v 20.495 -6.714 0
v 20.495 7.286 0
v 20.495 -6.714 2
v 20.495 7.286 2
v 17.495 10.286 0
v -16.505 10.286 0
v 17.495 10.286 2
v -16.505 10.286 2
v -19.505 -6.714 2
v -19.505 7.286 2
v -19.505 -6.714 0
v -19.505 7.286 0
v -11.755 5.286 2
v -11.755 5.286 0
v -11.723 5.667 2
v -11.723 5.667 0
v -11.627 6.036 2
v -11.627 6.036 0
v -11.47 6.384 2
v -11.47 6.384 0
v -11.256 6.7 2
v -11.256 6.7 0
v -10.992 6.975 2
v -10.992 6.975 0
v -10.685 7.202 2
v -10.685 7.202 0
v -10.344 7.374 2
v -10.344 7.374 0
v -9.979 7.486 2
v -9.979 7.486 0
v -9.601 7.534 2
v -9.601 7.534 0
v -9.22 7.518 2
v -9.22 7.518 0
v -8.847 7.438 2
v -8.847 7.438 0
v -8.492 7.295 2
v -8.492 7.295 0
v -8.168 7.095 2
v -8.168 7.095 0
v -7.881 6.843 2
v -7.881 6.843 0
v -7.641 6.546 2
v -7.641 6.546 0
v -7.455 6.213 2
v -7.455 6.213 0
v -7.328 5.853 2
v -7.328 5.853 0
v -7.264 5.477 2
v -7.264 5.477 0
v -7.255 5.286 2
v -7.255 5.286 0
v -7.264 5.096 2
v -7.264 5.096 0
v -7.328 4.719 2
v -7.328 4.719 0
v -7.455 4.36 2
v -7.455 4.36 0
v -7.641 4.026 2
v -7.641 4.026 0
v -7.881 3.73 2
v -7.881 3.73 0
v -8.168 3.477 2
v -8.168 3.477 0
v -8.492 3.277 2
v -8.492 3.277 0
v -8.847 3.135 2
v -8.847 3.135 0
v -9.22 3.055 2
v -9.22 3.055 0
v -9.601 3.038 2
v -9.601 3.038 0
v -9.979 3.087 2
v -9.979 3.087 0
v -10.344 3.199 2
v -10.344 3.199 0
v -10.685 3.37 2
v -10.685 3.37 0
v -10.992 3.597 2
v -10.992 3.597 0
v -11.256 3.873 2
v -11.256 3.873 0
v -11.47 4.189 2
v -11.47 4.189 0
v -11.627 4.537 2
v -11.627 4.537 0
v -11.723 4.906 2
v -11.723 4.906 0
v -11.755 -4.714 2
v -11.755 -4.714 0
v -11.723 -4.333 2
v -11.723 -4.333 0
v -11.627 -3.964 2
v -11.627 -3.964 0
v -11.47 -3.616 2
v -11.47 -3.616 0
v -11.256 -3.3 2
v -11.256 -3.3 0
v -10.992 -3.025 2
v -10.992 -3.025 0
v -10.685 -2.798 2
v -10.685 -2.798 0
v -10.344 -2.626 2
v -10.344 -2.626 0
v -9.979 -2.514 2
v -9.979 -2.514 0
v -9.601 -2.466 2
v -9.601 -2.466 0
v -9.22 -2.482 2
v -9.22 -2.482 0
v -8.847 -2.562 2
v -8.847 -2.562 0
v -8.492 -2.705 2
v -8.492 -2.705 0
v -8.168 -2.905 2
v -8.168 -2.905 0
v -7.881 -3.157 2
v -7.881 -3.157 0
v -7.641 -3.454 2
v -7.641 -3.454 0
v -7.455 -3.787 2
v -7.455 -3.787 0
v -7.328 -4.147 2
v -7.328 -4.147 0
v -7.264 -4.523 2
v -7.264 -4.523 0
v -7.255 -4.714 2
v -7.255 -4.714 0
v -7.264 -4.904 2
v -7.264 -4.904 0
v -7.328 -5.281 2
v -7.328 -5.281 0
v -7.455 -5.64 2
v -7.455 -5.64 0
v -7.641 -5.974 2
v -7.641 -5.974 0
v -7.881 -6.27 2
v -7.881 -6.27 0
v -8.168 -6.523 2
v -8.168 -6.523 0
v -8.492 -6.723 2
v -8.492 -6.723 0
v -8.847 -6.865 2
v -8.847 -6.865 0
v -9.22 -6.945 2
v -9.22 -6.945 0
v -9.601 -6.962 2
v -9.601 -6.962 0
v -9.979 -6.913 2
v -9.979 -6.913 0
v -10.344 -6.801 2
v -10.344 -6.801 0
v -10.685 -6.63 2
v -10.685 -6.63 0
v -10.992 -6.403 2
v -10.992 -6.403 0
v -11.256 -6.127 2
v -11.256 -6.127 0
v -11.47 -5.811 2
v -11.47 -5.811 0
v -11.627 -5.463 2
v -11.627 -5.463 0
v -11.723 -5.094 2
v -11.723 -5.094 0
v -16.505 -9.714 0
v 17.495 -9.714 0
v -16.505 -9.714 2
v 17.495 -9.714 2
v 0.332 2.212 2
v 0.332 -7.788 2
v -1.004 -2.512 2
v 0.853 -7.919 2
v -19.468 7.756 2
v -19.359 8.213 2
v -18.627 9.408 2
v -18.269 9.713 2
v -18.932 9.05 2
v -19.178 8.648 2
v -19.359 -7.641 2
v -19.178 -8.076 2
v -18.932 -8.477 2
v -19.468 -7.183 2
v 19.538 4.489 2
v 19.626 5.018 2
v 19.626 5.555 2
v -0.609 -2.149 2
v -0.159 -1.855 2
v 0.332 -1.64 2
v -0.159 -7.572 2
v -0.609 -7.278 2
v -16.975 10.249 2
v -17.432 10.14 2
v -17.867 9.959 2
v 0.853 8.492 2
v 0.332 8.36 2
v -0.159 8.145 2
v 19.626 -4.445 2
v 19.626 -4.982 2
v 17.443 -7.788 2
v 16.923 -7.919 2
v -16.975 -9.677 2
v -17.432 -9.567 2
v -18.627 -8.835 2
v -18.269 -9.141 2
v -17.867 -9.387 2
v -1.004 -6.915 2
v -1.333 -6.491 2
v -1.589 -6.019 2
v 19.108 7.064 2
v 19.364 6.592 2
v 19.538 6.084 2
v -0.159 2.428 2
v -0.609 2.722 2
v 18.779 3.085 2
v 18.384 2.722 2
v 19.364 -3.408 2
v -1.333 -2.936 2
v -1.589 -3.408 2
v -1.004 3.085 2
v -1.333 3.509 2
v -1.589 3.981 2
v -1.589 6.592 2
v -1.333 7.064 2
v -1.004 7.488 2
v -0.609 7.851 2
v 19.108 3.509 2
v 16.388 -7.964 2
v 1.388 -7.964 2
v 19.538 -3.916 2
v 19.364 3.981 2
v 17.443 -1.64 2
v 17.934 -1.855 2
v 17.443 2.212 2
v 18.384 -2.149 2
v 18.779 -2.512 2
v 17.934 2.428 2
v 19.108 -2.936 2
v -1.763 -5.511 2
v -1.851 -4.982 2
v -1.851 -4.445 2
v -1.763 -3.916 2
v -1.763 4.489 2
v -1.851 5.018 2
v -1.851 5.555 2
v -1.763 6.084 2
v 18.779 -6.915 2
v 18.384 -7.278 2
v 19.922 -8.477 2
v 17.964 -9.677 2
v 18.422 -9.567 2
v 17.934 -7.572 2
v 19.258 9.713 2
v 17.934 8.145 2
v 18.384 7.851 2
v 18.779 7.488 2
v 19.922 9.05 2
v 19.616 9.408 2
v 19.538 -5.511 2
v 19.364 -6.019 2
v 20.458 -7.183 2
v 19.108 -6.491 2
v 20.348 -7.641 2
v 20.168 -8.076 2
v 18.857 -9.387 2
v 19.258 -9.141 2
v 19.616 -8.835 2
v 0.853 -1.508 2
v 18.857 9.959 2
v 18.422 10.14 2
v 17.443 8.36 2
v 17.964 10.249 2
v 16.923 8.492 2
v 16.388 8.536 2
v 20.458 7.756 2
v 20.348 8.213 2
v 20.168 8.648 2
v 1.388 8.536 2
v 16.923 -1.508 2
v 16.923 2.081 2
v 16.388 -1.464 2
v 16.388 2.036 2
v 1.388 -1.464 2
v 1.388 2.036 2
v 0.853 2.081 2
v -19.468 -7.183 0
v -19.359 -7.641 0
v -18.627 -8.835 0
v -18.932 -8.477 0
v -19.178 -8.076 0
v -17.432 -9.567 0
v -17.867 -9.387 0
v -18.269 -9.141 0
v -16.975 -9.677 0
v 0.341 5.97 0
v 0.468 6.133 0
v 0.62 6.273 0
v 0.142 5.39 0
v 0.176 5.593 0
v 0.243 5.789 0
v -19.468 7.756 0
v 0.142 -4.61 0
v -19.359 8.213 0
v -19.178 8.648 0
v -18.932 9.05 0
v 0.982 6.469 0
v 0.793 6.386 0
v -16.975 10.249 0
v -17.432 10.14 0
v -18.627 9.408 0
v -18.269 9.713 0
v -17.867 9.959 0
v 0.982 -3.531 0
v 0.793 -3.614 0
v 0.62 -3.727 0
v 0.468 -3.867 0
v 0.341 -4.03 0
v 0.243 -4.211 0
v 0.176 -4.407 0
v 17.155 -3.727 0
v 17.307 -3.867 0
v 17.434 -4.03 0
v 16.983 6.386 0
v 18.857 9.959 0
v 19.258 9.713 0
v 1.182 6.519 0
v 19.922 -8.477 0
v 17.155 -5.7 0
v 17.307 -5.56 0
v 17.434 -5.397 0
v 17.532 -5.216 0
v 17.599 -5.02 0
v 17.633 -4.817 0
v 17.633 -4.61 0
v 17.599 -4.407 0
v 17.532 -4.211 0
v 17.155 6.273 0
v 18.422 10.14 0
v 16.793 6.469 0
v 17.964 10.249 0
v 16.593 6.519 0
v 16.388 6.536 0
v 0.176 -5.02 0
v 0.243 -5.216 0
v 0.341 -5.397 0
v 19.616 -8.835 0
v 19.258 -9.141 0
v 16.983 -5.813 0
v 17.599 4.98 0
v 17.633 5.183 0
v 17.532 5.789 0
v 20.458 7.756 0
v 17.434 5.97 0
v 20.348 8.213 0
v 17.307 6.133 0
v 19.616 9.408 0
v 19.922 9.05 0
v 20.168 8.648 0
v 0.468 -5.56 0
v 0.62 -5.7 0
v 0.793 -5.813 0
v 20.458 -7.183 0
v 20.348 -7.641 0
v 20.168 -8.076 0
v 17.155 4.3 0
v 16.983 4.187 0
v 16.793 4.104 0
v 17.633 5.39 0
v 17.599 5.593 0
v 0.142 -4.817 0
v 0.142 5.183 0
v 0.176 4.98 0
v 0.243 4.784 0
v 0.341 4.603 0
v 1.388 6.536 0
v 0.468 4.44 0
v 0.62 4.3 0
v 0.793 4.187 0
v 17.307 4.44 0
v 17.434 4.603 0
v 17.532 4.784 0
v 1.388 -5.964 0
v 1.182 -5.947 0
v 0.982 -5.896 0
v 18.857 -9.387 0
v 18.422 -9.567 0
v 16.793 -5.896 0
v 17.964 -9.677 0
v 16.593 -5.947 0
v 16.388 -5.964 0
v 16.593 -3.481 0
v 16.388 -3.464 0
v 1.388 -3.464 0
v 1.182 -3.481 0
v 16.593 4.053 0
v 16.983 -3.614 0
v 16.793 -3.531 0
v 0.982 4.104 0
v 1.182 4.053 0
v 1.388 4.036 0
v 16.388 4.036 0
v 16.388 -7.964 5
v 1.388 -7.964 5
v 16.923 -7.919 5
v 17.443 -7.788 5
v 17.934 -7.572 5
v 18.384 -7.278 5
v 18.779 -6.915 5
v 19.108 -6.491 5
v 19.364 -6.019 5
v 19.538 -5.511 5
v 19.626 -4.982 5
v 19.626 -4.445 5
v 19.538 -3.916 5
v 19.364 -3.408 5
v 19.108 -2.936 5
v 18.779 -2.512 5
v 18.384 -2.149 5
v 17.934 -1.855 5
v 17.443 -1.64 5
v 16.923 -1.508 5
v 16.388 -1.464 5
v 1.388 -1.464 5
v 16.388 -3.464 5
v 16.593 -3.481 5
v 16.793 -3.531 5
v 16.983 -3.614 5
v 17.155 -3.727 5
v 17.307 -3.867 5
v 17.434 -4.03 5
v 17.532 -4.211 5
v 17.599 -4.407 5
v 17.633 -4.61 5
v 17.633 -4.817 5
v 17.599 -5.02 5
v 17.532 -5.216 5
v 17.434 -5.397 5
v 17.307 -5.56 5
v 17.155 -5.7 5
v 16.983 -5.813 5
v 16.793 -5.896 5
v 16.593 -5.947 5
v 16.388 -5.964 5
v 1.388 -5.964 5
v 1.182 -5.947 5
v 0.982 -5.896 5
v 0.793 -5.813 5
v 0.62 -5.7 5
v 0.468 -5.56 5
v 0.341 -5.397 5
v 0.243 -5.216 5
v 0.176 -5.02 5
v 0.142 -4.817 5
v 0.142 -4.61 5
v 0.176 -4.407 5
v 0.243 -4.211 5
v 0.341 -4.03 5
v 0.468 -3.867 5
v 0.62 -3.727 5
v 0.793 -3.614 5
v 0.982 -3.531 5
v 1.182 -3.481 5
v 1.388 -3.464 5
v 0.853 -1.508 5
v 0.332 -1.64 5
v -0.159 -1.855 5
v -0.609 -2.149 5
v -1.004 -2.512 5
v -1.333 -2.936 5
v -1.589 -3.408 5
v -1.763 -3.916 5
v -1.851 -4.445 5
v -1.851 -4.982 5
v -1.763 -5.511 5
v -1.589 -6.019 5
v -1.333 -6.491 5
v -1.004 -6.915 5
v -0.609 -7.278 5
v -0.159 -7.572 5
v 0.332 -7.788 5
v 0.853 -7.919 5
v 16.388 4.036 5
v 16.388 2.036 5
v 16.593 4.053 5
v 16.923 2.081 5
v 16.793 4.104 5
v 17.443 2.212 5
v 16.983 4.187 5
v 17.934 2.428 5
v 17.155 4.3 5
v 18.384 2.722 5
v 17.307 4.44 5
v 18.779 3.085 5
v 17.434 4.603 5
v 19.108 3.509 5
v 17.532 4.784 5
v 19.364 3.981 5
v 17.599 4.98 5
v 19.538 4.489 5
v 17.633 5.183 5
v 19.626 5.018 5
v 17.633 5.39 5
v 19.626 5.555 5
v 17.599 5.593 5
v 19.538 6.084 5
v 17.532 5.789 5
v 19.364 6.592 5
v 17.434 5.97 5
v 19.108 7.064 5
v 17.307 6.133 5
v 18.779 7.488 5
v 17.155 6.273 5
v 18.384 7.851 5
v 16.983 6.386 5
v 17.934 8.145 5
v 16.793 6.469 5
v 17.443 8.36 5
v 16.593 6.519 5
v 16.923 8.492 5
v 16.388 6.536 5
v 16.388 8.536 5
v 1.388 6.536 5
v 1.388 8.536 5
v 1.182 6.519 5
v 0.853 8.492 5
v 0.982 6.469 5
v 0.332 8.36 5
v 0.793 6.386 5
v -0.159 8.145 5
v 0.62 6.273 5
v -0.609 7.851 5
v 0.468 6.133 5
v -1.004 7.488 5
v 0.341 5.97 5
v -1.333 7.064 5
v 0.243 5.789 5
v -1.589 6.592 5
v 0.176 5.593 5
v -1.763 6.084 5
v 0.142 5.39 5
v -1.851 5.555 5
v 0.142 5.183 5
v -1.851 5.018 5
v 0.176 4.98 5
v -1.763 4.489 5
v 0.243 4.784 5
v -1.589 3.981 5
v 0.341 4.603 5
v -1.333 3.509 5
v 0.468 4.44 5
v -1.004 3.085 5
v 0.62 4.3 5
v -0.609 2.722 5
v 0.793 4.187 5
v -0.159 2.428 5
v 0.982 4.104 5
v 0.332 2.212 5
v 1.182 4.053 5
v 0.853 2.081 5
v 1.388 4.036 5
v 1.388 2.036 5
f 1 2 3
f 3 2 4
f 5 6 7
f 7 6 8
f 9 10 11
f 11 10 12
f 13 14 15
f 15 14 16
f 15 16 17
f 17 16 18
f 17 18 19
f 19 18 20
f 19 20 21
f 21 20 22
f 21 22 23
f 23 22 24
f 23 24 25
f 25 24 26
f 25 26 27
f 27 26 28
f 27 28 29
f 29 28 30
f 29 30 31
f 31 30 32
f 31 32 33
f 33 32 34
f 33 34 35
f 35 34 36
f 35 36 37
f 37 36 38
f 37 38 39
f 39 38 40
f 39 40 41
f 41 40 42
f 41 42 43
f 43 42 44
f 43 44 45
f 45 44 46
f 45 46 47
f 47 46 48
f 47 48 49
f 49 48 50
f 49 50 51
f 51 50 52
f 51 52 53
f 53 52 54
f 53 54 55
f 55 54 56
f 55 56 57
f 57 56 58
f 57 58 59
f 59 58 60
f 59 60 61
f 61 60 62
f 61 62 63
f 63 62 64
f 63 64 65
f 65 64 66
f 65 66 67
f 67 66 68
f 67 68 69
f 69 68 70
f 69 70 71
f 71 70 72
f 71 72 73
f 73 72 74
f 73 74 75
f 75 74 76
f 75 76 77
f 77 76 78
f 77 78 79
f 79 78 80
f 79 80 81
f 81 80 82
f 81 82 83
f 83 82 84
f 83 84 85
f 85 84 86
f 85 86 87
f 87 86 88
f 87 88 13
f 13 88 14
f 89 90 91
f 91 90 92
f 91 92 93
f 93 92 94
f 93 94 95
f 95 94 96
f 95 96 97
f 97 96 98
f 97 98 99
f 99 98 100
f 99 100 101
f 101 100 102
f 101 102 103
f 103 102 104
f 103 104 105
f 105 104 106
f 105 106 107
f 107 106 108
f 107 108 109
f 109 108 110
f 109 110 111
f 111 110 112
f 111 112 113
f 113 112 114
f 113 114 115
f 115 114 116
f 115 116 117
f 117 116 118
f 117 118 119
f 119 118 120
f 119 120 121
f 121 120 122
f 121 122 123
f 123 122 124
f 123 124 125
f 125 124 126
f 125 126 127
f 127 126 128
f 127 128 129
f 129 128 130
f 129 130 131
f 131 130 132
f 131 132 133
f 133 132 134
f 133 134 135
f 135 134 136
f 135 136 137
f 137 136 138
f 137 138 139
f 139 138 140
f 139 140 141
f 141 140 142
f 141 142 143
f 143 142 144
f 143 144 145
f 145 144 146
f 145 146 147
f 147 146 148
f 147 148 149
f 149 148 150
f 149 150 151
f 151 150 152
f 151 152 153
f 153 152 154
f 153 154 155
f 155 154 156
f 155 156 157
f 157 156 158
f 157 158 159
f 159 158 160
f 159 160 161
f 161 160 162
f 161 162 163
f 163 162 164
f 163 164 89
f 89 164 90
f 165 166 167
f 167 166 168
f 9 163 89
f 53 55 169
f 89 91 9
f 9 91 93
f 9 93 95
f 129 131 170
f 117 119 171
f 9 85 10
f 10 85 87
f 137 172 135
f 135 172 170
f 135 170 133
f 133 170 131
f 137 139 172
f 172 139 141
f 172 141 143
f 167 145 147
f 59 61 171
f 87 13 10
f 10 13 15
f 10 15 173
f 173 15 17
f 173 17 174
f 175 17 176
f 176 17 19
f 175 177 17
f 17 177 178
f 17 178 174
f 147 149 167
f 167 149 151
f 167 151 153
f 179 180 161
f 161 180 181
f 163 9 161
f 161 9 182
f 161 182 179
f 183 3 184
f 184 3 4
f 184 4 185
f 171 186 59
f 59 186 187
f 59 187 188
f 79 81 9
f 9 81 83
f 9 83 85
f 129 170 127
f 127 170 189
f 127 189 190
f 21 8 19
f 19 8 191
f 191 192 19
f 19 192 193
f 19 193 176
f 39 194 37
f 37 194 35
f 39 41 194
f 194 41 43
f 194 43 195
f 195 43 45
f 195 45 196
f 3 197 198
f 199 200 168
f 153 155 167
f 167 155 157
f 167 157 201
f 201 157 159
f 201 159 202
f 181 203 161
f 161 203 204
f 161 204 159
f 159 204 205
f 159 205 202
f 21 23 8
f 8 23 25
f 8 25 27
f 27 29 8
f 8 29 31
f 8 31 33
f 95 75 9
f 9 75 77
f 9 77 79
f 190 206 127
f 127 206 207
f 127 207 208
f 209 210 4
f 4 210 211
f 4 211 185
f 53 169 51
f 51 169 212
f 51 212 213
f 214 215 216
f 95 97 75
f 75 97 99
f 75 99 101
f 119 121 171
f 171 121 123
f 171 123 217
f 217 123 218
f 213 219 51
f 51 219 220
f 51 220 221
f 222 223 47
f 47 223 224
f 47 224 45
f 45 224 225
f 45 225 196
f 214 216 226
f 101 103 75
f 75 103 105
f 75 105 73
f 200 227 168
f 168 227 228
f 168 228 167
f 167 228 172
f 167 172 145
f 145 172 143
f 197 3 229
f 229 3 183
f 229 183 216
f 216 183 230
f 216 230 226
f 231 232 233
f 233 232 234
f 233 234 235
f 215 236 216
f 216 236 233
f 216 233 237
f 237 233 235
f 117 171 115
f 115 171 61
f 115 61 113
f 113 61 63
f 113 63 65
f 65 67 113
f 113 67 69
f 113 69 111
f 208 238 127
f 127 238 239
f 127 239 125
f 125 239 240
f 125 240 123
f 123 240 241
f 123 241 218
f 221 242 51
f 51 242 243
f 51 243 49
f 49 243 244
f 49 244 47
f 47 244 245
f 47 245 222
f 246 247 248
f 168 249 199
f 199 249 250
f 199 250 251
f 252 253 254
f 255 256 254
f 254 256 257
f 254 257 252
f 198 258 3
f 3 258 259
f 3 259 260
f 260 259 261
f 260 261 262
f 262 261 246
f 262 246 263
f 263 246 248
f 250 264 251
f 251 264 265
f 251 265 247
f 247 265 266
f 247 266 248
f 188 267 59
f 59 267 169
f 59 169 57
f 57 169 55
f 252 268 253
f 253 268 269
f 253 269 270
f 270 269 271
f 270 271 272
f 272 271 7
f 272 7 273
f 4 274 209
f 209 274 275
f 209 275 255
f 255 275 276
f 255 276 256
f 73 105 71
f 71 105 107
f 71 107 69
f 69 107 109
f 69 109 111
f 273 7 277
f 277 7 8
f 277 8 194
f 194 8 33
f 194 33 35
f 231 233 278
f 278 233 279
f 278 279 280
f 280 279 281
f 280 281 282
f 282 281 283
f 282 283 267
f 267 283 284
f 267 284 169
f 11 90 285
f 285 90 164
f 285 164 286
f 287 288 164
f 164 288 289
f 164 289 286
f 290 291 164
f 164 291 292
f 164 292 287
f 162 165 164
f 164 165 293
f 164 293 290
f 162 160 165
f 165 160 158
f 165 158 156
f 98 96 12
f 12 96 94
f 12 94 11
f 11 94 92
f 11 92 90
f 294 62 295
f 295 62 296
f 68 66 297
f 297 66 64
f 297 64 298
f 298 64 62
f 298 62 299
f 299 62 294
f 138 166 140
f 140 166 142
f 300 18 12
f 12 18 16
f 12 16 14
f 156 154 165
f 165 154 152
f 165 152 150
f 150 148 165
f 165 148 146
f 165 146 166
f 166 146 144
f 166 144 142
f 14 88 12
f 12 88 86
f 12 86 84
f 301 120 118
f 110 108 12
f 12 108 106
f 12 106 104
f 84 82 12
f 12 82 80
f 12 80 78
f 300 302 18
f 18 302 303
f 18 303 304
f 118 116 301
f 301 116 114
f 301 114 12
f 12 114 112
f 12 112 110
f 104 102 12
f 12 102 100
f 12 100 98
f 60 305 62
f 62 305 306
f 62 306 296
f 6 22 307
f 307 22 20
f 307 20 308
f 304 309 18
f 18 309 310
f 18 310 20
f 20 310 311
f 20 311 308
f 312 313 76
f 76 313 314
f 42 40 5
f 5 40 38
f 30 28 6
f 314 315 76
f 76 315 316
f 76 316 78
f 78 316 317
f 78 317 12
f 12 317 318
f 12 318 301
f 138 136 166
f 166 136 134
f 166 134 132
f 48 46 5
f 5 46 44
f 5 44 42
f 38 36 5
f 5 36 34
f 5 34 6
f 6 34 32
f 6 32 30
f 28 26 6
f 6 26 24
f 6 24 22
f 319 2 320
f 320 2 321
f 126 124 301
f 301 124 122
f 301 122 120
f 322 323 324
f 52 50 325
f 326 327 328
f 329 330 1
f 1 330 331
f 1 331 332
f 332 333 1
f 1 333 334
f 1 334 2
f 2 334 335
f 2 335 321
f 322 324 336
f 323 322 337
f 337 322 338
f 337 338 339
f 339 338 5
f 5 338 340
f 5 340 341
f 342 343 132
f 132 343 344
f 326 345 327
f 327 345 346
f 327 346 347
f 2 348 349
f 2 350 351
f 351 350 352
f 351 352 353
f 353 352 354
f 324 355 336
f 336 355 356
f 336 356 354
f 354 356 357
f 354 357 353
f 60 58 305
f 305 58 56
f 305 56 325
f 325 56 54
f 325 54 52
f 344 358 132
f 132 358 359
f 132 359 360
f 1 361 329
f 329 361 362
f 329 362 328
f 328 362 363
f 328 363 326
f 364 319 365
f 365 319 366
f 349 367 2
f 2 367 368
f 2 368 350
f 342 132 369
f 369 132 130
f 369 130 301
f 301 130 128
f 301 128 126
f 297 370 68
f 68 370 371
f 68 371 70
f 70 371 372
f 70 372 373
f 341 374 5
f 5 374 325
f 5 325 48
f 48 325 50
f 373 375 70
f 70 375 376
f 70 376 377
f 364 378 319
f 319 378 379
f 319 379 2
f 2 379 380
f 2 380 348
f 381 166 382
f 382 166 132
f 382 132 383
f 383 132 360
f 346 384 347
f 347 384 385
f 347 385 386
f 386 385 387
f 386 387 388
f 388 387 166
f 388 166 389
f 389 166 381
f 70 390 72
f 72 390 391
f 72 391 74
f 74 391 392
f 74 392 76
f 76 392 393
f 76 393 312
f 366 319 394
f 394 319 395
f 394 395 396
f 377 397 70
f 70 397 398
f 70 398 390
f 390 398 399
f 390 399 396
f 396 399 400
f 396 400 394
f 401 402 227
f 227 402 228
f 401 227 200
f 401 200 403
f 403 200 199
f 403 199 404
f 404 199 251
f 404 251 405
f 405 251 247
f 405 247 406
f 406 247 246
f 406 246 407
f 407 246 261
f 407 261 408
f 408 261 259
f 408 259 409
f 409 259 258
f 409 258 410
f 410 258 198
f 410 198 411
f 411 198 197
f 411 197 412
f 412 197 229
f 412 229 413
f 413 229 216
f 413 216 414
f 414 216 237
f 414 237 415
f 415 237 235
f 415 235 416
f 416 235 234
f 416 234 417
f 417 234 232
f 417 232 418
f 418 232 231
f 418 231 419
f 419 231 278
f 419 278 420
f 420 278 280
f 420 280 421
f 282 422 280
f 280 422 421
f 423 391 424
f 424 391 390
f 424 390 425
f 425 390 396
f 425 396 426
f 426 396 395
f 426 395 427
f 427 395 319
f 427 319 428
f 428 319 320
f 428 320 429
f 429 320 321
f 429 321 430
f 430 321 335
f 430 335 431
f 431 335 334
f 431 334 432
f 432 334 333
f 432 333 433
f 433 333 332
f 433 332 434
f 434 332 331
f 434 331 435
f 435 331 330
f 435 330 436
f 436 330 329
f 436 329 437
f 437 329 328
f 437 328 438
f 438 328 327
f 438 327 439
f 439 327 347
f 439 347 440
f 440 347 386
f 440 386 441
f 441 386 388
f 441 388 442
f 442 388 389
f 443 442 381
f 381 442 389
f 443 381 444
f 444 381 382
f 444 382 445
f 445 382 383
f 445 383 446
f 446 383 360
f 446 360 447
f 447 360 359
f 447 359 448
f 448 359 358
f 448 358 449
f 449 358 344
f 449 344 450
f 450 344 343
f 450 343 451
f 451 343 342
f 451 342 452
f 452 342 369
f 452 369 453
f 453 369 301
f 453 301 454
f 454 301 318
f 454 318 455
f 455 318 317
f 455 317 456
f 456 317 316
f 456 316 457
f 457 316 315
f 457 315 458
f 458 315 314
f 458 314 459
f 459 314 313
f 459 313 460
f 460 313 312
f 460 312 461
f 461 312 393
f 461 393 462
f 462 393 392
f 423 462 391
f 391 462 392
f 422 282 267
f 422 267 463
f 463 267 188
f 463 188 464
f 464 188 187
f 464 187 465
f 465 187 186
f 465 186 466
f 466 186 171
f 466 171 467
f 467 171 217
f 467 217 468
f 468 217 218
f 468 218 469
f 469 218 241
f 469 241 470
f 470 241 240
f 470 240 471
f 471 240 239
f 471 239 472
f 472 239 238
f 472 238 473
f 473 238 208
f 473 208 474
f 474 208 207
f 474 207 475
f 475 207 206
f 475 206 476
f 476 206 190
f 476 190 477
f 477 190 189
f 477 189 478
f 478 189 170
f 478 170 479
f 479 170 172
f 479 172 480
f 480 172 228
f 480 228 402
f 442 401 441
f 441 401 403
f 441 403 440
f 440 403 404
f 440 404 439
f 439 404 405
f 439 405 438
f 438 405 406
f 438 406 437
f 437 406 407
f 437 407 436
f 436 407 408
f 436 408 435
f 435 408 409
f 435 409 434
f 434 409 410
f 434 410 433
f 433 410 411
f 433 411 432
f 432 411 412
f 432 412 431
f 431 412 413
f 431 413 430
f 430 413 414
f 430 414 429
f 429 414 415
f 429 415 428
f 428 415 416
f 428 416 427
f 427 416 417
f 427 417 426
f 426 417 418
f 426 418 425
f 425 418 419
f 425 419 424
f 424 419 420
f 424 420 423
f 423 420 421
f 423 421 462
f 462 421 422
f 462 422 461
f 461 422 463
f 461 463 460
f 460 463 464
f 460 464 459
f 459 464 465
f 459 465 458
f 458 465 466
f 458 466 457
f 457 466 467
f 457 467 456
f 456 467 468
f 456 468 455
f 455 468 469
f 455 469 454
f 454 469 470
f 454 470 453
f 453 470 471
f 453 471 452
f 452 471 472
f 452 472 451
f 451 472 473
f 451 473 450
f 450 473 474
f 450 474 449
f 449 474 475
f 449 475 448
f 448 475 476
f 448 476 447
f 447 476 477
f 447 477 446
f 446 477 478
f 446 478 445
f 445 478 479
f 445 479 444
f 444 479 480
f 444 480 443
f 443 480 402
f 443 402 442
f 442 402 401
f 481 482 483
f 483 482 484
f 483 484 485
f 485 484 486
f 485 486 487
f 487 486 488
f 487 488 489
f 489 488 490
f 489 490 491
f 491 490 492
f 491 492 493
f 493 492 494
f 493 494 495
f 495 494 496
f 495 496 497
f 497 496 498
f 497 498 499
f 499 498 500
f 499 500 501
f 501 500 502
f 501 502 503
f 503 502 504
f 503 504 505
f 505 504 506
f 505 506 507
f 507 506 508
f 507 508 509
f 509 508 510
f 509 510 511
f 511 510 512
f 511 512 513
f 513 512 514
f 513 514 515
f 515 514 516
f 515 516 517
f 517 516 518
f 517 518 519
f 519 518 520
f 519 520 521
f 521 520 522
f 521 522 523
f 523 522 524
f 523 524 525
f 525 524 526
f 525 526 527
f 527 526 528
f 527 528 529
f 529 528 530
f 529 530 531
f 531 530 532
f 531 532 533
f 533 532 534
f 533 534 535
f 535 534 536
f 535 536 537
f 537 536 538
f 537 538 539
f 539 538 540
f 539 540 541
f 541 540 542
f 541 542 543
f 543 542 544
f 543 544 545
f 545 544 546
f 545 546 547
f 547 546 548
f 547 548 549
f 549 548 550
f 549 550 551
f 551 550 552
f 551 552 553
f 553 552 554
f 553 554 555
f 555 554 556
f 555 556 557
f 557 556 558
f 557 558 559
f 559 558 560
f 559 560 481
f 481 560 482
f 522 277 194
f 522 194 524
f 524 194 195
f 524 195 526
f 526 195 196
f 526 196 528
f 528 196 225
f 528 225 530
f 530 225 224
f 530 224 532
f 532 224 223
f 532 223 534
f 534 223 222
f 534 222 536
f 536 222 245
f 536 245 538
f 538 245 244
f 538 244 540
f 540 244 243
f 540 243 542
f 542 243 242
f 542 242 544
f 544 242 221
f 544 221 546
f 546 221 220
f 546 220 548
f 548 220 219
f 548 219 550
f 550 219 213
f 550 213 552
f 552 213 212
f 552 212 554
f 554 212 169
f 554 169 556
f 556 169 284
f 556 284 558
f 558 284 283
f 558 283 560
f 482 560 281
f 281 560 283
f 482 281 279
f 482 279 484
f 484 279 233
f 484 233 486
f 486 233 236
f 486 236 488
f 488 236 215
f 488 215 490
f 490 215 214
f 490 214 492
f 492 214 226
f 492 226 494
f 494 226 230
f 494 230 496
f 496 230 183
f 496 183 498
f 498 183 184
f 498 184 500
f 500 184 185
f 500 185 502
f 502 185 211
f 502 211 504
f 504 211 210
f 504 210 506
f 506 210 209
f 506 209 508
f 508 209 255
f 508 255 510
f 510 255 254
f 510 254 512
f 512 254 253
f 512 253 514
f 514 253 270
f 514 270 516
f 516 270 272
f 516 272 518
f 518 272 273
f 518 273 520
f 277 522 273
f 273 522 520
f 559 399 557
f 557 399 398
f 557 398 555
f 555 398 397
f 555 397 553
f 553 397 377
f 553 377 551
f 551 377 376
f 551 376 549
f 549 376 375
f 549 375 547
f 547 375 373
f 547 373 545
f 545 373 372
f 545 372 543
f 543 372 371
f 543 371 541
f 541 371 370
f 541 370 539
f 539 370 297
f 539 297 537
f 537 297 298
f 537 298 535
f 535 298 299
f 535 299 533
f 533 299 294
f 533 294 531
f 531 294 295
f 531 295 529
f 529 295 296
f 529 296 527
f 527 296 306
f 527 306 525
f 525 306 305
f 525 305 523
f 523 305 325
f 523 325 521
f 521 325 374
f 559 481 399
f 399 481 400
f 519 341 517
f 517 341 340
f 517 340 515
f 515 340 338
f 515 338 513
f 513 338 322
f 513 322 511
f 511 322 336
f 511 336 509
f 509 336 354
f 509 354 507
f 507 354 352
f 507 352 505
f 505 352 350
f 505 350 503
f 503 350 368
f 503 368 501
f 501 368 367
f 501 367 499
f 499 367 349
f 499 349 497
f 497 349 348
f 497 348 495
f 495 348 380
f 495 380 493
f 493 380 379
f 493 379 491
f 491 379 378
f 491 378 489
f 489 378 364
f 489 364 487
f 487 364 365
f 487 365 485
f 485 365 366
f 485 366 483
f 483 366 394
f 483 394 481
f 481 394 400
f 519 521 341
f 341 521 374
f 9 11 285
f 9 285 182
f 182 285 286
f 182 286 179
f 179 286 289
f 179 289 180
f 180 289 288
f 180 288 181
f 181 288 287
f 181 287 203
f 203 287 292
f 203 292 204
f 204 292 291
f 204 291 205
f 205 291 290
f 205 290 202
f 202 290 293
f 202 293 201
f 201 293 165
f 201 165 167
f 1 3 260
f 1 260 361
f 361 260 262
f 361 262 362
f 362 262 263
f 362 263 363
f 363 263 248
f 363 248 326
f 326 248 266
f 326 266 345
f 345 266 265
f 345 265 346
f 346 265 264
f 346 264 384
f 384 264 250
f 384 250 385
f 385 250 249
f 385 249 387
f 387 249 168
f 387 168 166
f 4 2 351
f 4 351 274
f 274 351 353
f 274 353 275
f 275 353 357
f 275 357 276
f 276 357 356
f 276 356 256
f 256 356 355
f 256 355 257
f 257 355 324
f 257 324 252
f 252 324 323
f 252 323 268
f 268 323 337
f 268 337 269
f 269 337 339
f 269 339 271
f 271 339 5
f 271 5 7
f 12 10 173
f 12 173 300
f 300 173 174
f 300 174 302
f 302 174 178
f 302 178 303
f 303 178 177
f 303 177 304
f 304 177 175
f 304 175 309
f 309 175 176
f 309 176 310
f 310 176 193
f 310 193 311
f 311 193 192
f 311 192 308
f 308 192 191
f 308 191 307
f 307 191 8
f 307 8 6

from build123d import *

# Parameters (mm, degrees)
SZKIC1_W                    = 40
SZKIC1_H                    = 20
SZKIC1_R                    = 2.25
DODANIE_WYCI_GNI_CIE1_DEPTH = 2
DODANIE_WYCI_GNI_CIE2_DEPTH = 5
ZAOKR_GLENIE1_R             = 3


with BuildPart() as part:
    # Szkic1 → Dodanie-wyci_gni_cie1 (new body)
    with BuildSketch(Plane.XY):
        with Locations((0.494567618, 0.286392586)):
            Rectangle(SZKIC1_W, SZKIC1_H)
        with Locations((-9.505432382, -4.713607414)):
            Circle(SZKIC1_R, mode=Mode.SUBTRACT)
        with Locations((-9.505432382, 5.286392586)):
            Circle(SZKIC1_R, mode=Mode.SUBTRACT)
        with BuildLine():
            ThreePointArc((16.387577827, 2.036392586), (19.637577827, 5.286392586), (16.387577827, 8.536392586))
            Line((16.387577827, 8.536392586), (1.387577827, 8.536392586))
            ThreePointArc((1.387577827, 8.536392586), (-1.862422173, 5.286392586), (1.387577827, 2.036392586))
            Line((1.387577827, 2.036392586), (16.387577827, 2.036392586))
        make_face(mode=Mode.SUBTRACT)
        with BuildLine():
            ThreePointArc((16.387577827, -7.963607414), (19.637577827, -4.713607414), (16.387577827, -1.463607414))
            Line((16.387577827, -1.463607414), (1.387577827, -1.463607414))
            ThreePointArc((1.387577827, -1.463607414), (-1.862422173, -4.713607414), (1.387577827, -7.963607414))
            Line((1.387577827, -7.963607414), (16.387577827, -7.963607414))
        make_face(mode=Mode.SUBTRACT)
    extrude(amount=DODANIE_WYCI_GNI_CIE1_DEPTH)

    # Szkic1_3 → Dodanie-wyci_gni_cie2 (add)
    # profile 1 of 2: a face of its own
    with BuildSketch(Plane.XY):
        with BuildLine():
            Line((1.387577827, -1.463607414), (16.387577827, -1.463607414))
            ThreePointArc((16.387577827, -1.463607414), (19.637577827, -4.713607414), (16.387577827, -7.963607414))
            Line((16.387577827, -7.963607414), (1.387577827, -7.963607414))
            ThreePointArc((1.387577827, -7.963607414), (-1.862422173, -4.713607414), (1.387577827, -1.463607414))
        make_face()
        with BuildLine():
            Line((1.387577827, -3.463607414), (16.387577827, -3.463607414))
            ThreePointArc((16.387577827, -3.463607414), (17.637577827, -4.713607414), (16.387577827, -5.963607414))
            Line((16.387577827, -5.963607414), (1.387577827, -5.963607414))
            ThreePointArc((1.387577827, -5.963607414), (0.137577827, -4.713607414), (1.387577827, -3.463607414))
        make_face(mode=Mode.SUBTRACT)
    # profile 2 of 2: a face of its own
    with BuildSketch(Plane.XY):
        with BuildLine():
            Line((1.387577827, 8.536392586), (16.387577827, 8.536392586))
            ThreePointArc((16.387577827, 8.536392586), (19.637577827, 5.286392586), (16.387577827, 2.036392586))
            Line((16.387577827, 2.036392586), (1.387577827, 2.036392586))
            ThreePointArc((1.387577827, 2.036392586), (-1.862422173, 5.286392586), (1.387577827, 8.536392586))
        make_face()
        with BuildLine():
            Line((1.387577827, 6.536392586), (16.387577827, 6.536392586))
            ThreePointArc((16.387577827, 6.536392586), (17.637577827, 5.286392586), (16.387577827, 4.036392586))
            Line((16.387577827, 4.036392586), (1.387577827, 4.036392586))
            ThreePointArc((1.387577827, 4.036392586), (0.137577827, 5.286392586), (1.387577827, 6.536392586))
        make_face(mode=Mode.SUBTRACT)
    extrude(amount=DODANIE_WYCI_GNI_CIE2_DEPTH)

    # Zaokr_glenie1
    zaokr_glenie1_edges = [part.edges().sort_by_distance(p)[0] for p in [
        (20.494567618, -9.713607414, 1),
        (-19.505432382, -9.713607414, 1),
        (-19.505432382, 10.286392586, 1),
        (20.494567618, 10.286392586, 1),
    ]]
    fillet(zaokr_glenie1_edges, radius=ZAOKR_GLENIE1_R)


solid = part.part
